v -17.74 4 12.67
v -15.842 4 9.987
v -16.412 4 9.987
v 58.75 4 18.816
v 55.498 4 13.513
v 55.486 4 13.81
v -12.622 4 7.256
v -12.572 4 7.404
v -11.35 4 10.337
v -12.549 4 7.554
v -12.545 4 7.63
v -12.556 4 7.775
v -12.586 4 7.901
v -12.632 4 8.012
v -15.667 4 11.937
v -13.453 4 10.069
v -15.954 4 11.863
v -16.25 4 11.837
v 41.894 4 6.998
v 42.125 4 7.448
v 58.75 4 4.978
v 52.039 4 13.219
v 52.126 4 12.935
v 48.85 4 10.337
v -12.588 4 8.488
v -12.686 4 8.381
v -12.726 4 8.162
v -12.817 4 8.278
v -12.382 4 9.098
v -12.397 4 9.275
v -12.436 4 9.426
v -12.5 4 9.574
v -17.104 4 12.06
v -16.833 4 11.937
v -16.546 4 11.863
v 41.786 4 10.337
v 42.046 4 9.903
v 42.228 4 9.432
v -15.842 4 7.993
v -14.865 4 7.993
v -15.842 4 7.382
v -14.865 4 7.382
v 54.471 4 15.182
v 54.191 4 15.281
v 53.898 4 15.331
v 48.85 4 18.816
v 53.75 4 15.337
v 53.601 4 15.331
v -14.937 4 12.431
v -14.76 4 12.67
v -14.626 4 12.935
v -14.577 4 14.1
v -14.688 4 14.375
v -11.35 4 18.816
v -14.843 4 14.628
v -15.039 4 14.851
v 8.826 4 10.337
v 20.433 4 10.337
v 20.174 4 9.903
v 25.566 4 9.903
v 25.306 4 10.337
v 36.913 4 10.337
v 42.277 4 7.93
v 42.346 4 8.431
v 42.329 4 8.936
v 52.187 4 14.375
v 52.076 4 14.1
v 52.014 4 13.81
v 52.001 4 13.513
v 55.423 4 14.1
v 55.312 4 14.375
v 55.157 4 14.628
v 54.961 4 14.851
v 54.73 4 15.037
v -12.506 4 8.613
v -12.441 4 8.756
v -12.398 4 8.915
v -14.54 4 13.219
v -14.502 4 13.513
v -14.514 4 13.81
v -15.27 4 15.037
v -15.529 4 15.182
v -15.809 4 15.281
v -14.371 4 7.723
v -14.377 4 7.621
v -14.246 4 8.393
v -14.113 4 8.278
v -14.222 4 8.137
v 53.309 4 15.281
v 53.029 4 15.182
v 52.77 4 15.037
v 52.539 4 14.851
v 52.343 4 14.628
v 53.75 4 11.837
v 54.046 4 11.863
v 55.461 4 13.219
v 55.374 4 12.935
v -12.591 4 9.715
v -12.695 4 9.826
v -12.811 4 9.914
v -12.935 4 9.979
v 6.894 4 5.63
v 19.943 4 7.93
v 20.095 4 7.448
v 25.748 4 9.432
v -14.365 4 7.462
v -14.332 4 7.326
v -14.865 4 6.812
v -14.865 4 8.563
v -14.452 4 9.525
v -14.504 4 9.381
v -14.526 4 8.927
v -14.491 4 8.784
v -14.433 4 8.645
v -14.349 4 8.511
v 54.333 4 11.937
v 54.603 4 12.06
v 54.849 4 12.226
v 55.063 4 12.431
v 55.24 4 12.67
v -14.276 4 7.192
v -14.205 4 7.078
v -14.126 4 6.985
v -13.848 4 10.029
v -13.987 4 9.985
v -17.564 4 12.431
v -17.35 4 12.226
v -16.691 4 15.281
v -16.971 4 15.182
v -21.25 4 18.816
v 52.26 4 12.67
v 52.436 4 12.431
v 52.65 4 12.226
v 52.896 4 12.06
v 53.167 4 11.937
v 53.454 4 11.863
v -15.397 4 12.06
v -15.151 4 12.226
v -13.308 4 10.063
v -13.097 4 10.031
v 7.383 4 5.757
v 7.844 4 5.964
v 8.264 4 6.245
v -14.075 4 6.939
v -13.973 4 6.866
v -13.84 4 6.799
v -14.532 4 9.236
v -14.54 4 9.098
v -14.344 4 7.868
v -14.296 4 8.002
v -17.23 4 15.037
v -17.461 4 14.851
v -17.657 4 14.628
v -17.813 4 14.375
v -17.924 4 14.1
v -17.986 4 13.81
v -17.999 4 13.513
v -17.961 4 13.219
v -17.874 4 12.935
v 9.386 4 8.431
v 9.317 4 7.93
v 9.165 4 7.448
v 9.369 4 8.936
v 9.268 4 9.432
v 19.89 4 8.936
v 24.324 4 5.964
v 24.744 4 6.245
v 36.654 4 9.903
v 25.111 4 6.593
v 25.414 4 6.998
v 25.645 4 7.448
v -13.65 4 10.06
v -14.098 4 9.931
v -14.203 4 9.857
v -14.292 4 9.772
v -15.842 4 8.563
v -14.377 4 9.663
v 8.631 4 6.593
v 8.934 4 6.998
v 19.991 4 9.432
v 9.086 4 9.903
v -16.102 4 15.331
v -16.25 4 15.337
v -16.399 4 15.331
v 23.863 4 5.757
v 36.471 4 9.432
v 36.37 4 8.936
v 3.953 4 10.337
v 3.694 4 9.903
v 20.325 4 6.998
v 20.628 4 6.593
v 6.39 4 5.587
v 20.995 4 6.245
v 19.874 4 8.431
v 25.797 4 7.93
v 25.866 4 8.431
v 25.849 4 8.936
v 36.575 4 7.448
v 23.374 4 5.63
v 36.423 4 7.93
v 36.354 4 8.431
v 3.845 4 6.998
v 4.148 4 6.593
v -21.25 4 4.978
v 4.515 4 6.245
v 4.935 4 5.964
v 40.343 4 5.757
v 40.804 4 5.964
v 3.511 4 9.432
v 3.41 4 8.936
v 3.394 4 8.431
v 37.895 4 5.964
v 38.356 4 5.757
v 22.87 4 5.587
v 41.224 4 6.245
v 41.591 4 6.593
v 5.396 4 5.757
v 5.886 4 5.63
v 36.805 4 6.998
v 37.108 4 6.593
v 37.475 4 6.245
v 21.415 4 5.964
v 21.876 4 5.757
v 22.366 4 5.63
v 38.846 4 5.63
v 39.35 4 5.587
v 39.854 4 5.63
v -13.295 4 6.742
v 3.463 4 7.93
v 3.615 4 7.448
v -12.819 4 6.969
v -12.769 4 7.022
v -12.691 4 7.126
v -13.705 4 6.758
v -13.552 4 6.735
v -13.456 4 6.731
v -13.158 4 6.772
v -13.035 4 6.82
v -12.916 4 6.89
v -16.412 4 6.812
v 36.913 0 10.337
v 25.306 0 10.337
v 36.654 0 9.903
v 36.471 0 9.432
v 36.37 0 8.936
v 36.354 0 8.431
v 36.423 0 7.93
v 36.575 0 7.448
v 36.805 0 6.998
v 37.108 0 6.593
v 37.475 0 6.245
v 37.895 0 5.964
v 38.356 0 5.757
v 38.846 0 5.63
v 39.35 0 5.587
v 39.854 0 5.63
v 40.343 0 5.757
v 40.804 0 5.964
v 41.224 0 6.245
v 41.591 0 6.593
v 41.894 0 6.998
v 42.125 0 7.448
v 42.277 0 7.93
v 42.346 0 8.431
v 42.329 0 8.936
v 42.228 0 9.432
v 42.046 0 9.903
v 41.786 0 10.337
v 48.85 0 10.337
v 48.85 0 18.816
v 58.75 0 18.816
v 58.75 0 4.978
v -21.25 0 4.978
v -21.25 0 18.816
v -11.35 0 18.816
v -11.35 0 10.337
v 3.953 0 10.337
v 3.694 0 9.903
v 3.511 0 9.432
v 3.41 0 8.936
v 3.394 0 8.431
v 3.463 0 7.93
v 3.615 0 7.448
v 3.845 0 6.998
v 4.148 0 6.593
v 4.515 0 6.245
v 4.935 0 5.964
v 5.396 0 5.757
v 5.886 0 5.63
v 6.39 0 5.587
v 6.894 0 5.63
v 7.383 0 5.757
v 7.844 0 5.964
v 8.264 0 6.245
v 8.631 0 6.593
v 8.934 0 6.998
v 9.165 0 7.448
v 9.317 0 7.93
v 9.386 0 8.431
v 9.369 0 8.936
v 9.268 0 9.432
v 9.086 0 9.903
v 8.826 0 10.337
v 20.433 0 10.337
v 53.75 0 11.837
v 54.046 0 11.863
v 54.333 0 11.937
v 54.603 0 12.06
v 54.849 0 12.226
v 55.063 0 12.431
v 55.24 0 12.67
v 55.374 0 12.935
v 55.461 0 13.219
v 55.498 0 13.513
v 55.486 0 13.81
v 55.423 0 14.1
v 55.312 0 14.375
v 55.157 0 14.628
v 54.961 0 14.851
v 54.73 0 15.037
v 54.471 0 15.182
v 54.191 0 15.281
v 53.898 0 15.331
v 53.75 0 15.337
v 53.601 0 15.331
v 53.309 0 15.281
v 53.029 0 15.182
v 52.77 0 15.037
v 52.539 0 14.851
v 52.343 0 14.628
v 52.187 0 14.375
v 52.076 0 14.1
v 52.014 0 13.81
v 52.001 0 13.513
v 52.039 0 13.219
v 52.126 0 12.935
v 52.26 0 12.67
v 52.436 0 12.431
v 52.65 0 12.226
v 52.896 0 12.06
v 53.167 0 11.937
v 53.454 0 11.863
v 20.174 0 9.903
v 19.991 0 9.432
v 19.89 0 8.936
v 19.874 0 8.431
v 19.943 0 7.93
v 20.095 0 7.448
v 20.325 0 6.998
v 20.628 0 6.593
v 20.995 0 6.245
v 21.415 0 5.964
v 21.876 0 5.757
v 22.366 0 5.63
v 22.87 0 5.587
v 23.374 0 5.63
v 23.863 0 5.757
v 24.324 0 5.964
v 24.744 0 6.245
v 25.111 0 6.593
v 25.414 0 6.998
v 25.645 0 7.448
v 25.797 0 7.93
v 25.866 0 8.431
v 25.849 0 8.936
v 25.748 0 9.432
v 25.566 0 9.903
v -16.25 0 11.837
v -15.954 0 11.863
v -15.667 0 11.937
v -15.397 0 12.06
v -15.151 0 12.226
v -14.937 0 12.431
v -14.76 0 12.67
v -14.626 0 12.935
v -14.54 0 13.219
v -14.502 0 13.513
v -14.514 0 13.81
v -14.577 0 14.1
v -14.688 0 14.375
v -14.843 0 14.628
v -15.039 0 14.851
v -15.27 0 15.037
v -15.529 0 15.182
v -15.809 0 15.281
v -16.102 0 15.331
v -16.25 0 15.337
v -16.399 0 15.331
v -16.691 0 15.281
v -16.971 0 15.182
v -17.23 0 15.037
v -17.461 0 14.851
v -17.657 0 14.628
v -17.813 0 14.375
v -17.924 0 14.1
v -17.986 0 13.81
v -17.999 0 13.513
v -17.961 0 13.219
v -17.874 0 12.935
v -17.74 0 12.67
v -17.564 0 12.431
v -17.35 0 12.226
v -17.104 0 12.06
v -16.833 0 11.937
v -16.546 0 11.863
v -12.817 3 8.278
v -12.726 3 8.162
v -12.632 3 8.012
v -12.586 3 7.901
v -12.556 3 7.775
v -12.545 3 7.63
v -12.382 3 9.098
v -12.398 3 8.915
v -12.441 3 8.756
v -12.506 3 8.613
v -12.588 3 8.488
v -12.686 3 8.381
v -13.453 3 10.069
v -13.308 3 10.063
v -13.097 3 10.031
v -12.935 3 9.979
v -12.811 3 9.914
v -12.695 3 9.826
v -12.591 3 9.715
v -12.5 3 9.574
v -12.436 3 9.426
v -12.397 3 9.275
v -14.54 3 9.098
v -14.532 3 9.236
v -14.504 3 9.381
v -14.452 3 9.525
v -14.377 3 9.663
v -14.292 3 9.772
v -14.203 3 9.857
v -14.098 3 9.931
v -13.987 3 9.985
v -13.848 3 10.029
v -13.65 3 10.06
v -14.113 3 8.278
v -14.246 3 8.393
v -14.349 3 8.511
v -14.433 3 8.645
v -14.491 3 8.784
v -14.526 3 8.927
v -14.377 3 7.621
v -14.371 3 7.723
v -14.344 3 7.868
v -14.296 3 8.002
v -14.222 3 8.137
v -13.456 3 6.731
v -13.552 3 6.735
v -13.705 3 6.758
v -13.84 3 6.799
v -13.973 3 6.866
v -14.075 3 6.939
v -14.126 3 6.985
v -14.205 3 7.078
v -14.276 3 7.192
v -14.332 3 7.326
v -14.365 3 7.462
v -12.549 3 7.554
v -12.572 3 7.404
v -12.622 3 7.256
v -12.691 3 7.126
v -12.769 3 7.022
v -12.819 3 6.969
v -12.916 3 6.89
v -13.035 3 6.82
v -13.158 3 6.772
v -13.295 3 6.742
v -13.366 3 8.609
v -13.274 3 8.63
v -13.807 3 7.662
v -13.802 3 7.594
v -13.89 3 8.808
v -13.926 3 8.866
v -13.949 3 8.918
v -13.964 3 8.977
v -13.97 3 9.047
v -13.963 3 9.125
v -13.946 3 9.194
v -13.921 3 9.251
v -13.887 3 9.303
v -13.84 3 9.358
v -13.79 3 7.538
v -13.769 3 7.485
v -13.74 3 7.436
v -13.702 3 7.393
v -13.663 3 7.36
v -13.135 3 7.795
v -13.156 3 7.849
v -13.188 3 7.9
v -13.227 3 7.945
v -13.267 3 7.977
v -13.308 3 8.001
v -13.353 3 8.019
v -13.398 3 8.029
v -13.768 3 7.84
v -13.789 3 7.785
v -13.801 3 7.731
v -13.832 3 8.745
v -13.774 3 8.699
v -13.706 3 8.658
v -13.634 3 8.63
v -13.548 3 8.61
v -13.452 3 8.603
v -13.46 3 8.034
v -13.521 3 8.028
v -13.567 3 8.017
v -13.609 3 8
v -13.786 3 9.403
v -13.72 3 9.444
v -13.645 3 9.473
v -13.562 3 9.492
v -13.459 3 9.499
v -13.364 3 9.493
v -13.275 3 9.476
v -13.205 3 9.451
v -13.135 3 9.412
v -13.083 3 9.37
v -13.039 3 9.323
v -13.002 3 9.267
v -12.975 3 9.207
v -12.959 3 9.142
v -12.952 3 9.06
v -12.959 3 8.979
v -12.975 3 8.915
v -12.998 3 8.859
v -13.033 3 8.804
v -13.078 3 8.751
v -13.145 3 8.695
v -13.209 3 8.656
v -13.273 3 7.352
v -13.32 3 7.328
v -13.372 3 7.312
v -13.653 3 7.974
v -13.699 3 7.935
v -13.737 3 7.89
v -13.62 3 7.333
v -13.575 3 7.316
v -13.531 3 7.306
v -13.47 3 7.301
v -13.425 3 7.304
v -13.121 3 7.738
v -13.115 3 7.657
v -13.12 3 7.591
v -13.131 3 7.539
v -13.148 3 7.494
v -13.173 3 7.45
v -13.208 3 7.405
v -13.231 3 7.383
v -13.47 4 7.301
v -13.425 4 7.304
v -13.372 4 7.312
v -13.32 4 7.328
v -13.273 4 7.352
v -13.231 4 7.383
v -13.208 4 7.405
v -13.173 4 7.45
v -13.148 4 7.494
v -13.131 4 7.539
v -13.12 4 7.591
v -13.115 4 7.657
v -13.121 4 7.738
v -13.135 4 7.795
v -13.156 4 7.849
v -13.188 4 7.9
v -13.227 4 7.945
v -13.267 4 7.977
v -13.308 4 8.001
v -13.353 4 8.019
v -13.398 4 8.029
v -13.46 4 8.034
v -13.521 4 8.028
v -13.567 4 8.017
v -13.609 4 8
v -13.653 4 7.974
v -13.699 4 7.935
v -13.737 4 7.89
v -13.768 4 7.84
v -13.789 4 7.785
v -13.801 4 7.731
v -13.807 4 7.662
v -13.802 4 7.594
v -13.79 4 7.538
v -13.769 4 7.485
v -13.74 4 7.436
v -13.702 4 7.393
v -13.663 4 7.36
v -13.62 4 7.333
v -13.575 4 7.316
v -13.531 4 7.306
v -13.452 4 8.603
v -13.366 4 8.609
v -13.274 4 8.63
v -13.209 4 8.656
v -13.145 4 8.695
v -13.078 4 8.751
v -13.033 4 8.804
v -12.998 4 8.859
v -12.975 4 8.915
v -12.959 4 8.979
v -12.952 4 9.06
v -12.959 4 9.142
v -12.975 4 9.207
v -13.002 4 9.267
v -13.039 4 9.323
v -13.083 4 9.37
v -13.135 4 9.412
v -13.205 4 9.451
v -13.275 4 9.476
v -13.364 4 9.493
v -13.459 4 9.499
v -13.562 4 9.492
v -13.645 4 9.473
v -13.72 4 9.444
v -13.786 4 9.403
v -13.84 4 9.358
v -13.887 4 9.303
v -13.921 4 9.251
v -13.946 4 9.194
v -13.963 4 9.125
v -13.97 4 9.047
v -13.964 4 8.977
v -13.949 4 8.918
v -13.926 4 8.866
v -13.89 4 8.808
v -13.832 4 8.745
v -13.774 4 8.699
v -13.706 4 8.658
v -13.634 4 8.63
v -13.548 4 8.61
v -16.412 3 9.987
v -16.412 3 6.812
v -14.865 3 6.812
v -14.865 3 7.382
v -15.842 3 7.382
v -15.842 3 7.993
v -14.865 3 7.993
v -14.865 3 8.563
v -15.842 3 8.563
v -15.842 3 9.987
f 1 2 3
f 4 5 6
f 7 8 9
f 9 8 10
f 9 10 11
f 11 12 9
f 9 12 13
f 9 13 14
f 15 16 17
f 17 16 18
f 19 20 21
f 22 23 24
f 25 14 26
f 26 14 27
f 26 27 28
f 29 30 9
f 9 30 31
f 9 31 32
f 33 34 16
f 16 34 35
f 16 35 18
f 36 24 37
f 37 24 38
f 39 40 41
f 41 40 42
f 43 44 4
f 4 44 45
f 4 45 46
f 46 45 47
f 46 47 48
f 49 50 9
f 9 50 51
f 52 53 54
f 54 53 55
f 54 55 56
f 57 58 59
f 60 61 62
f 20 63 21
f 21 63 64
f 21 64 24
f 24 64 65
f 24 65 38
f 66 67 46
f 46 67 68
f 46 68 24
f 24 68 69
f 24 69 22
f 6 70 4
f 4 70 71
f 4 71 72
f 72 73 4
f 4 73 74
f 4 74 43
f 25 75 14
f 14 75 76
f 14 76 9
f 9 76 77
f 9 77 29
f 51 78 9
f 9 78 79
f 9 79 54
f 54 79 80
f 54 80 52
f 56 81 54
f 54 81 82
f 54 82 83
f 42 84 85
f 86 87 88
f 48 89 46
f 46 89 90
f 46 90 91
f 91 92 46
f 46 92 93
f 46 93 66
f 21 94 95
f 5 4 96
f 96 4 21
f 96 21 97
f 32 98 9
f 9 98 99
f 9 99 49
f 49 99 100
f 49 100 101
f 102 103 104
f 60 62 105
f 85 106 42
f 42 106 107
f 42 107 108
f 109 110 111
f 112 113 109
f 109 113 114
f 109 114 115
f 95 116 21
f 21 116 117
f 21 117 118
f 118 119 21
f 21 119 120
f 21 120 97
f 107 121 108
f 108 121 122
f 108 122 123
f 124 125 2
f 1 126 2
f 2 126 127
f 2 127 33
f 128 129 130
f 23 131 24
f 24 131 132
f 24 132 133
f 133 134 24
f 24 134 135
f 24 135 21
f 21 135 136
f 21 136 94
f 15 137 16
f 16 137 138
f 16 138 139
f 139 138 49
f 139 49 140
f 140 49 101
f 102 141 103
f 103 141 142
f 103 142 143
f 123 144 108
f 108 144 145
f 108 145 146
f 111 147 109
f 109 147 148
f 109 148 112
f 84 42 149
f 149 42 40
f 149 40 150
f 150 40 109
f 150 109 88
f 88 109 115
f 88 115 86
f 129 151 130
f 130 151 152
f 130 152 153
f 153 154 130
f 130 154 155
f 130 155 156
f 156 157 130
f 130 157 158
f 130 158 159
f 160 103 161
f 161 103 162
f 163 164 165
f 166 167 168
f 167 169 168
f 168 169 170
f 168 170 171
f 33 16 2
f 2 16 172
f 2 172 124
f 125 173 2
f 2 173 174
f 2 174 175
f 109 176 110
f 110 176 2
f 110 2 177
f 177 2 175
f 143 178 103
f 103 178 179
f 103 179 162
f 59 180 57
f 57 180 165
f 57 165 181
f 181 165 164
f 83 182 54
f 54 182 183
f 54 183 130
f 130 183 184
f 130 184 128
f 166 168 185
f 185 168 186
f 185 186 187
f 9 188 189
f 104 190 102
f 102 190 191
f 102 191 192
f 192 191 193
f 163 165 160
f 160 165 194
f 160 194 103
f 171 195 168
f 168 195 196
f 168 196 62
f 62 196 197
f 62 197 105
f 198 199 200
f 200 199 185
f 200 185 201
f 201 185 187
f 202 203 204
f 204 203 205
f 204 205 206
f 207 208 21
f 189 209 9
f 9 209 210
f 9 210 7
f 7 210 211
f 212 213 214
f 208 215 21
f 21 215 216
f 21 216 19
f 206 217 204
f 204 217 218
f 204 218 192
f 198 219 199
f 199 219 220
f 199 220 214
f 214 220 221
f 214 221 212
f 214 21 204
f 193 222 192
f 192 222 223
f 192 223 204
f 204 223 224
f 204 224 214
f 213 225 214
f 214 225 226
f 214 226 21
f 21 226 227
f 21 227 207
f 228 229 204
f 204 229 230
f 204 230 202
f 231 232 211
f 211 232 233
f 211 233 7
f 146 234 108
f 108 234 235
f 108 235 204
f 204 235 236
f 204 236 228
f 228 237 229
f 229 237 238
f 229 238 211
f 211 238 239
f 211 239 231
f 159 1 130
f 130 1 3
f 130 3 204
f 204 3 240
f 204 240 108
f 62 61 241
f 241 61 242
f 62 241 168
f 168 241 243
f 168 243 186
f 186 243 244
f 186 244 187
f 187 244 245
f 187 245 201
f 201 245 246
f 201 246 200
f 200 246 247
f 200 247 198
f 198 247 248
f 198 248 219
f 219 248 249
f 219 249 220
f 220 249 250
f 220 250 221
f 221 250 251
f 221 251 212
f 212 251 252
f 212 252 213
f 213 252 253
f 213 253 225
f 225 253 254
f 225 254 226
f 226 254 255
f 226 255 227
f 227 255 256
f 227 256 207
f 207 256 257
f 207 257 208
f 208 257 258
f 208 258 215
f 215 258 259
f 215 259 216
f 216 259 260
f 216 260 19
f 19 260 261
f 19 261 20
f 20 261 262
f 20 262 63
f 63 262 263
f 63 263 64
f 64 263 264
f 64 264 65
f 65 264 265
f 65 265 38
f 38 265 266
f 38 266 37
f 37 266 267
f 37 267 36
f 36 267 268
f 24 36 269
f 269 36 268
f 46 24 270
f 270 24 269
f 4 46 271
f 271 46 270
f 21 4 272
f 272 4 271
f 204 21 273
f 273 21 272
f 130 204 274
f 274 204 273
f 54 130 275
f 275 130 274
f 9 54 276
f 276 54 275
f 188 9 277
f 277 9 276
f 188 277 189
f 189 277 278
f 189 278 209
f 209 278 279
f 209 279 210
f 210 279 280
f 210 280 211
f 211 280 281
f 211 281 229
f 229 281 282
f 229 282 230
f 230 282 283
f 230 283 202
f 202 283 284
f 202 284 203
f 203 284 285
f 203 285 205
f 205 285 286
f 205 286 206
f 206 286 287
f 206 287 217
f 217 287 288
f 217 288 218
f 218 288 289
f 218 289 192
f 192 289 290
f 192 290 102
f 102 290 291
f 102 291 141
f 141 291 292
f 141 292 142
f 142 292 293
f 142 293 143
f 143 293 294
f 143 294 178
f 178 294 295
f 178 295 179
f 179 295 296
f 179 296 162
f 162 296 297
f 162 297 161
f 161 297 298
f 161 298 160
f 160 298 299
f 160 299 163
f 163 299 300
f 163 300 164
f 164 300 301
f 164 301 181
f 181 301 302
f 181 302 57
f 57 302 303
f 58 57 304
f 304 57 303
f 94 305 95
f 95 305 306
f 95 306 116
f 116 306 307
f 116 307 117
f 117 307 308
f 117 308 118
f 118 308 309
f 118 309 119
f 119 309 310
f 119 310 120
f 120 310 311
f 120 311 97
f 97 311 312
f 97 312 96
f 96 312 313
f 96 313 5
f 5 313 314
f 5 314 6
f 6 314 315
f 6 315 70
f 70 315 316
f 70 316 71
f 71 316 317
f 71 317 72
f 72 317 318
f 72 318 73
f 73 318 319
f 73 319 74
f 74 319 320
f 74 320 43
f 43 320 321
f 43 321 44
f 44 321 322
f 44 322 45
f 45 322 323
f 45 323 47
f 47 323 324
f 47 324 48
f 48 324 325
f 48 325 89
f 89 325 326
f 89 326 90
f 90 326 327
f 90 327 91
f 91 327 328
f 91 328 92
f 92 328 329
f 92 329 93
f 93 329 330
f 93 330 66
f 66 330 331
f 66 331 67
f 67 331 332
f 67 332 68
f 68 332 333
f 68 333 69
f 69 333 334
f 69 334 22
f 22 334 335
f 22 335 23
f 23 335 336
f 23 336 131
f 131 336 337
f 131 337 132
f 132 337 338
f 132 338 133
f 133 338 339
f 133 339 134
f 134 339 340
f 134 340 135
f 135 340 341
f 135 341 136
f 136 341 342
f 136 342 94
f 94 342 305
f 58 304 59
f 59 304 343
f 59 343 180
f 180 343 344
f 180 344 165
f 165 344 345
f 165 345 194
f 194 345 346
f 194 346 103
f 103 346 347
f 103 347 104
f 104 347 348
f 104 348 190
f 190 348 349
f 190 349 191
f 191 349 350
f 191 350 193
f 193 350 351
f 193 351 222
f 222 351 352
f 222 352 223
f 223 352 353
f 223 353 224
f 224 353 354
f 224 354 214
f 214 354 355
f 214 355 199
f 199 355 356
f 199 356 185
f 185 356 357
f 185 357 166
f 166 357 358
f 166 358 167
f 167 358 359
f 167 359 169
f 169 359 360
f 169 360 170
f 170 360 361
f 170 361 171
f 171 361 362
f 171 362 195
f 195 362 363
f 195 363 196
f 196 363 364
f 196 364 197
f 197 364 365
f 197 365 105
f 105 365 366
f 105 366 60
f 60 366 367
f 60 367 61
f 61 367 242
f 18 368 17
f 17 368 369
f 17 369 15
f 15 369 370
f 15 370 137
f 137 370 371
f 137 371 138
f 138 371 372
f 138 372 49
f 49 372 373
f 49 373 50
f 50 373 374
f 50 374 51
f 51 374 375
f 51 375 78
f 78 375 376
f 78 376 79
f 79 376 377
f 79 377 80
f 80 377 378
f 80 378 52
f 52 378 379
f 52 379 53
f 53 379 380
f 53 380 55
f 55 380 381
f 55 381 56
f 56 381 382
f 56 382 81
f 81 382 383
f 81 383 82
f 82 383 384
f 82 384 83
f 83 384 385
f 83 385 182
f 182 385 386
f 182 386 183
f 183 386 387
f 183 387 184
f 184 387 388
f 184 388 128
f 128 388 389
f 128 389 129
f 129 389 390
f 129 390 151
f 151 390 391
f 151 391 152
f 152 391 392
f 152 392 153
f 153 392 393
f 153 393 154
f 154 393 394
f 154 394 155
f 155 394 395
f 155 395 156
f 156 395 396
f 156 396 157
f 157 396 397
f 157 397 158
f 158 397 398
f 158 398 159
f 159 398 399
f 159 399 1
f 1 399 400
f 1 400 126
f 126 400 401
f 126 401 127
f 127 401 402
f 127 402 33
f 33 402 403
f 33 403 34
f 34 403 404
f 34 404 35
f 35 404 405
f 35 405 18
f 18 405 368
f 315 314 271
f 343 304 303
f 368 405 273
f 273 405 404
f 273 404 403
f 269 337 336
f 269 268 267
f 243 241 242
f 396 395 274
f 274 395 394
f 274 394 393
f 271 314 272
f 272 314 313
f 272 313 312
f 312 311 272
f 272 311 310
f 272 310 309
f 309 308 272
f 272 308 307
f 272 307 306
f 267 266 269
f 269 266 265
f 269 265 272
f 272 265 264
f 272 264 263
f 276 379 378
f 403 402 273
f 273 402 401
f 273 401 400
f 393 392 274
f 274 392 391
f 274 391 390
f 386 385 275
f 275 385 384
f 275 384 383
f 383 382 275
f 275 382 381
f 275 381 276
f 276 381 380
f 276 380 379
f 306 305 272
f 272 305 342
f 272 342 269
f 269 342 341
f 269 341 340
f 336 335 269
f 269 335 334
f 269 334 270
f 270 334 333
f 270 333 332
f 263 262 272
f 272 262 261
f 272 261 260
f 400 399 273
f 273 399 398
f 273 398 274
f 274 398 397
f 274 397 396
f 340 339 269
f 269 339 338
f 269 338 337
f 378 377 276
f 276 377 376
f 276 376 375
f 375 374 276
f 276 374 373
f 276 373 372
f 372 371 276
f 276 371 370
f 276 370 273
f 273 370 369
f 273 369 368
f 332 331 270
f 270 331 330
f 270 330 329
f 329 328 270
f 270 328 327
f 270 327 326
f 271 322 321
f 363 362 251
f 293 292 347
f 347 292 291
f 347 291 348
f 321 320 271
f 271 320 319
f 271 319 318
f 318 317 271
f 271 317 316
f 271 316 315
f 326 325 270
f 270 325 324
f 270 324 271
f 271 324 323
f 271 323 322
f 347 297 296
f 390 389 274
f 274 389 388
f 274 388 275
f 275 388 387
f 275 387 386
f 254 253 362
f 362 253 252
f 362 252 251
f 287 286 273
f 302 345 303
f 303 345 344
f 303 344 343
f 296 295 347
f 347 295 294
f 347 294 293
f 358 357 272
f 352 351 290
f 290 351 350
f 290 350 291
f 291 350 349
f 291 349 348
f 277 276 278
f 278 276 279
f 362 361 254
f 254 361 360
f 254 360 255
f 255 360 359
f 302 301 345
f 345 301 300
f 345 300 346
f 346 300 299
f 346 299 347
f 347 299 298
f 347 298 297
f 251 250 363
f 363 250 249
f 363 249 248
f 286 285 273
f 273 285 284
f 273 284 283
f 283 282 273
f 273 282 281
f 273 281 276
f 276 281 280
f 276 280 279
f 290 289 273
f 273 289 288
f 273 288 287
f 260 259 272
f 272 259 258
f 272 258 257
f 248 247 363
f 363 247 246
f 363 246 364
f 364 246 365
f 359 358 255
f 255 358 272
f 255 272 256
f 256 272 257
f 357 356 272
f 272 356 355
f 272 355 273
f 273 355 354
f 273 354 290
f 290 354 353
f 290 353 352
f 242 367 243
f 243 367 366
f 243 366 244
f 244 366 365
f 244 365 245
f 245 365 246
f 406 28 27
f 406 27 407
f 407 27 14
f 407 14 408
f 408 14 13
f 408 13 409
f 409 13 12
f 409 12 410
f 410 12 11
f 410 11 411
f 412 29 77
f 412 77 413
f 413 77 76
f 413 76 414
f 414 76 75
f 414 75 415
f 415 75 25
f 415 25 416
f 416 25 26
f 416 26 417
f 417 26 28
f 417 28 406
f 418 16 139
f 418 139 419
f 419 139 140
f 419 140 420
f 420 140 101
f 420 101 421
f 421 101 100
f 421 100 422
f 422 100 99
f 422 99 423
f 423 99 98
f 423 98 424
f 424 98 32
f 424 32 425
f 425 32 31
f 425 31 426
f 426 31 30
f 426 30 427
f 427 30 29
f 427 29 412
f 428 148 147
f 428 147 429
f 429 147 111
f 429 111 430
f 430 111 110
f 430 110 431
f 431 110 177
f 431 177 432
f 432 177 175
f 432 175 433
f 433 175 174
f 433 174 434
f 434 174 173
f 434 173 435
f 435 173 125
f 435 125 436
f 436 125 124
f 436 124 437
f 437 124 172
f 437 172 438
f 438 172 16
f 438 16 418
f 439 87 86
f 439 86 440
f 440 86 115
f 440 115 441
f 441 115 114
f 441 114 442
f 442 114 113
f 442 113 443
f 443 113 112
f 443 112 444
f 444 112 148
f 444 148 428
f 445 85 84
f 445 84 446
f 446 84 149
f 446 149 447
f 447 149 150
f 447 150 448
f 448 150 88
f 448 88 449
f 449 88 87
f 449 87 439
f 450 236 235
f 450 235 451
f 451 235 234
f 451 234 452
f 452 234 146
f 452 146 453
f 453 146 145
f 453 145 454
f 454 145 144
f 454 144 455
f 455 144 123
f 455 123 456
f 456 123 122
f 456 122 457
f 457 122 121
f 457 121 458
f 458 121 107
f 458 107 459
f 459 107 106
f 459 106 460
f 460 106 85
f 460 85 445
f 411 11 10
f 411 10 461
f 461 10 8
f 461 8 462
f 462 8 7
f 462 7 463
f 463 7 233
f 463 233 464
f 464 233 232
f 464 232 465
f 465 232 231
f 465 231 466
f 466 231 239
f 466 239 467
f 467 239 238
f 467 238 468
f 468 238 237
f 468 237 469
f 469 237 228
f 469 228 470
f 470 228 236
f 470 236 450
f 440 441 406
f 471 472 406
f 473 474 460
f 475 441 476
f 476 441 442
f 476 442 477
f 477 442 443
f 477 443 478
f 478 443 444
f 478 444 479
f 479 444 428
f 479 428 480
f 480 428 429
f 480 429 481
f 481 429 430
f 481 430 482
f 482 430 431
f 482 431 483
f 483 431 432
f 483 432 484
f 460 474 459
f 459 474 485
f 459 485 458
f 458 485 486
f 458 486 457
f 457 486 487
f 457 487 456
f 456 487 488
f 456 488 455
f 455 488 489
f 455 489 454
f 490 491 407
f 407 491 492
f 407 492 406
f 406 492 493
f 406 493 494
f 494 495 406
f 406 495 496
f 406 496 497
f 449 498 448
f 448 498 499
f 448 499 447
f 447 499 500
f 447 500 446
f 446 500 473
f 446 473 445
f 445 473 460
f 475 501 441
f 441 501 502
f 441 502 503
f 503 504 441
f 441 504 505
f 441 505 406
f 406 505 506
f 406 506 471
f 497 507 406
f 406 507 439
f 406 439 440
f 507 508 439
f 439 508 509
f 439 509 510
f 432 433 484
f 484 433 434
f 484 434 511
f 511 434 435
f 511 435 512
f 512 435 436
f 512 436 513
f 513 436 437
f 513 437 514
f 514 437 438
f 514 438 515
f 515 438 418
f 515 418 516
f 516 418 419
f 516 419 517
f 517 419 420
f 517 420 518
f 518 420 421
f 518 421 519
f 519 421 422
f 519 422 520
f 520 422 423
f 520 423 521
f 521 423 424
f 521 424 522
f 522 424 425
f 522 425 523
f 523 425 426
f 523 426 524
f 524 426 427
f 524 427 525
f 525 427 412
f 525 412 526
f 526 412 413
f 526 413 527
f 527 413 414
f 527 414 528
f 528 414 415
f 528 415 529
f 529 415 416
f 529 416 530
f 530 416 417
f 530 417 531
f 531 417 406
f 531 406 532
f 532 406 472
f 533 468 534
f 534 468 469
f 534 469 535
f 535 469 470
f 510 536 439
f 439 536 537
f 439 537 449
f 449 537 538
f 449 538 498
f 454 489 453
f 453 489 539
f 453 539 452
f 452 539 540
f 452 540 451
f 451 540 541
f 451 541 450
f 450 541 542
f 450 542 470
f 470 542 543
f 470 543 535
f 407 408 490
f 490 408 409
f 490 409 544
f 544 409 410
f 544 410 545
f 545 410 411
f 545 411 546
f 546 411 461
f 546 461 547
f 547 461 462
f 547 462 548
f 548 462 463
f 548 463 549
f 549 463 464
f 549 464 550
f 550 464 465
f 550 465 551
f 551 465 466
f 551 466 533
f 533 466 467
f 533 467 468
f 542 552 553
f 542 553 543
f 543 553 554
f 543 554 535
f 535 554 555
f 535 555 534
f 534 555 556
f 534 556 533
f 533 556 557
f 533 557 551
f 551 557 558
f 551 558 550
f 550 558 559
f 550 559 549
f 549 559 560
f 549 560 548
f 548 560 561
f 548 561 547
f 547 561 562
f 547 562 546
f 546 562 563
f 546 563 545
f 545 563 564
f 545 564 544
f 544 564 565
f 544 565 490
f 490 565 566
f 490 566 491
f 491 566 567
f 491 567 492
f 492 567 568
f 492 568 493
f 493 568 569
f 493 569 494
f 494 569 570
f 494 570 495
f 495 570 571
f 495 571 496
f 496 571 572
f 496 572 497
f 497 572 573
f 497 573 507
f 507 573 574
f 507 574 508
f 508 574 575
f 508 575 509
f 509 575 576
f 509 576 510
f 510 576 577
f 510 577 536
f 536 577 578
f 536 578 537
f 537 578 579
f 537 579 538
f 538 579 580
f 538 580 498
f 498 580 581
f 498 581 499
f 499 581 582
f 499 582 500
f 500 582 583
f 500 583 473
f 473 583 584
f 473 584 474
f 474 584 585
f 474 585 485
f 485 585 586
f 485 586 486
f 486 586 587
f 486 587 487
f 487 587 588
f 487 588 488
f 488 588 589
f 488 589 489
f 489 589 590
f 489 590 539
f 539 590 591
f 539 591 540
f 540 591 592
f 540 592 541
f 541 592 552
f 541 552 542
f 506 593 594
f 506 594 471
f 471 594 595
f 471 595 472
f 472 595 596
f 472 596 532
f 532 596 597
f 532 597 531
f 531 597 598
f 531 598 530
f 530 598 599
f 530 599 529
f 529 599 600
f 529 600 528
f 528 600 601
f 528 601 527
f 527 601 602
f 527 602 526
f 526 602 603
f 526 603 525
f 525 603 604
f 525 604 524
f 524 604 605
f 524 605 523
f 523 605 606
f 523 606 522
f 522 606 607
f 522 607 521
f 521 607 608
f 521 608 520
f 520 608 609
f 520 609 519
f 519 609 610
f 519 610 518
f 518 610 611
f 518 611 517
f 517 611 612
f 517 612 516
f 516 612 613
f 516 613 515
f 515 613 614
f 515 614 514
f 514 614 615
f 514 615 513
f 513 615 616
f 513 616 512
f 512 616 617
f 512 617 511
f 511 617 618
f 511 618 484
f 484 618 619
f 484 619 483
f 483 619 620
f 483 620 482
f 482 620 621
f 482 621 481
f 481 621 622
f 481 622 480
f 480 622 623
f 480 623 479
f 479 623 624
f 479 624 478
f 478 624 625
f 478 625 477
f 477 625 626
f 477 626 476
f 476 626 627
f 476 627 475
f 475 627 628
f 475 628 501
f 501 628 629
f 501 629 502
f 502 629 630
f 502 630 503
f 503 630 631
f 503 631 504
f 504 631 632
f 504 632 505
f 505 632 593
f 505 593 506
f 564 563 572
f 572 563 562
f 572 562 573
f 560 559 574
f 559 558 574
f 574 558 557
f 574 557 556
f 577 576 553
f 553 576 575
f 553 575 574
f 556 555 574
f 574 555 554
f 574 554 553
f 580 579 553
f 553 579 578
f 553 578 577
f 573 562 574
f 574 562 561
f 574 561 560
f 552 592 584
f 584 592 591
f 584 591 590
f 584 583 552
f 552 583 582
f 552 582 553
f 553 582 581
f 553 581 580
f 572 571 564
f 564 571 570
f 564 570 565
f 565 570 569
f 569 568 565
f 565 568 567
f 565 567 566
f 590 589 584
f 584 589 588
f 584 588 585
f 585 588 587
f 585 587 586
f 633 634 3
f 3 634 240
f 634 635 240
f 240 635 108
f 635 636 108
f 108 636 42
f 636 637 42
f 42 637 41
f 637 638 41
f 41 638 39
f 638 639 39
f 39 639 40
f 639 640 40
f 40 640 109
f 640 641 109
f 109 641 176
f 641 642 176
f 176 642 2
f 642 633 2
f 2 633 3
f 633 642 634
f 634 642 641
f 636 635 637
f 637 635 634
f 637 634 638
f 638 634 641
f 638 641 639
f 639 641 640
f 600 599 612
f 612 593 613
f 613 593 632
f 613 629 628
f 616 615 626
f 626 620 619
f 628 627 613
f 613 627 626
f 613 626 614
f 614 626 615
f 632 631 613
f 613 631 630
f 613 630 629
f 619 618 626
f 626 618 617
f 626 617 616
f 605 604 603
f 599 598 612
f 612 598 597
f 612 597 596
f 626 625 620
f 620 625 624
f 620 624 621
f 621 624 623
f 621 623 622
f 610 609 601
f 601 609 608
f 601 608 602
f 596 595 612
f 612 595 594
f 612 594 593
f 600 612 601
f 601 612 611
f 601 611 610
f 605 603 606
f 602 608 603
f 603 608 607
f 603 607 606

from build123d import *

# Parameters (mm, degrees)
BOSS_EXTRUDE1_OUTLINE_R = 1.75
BOSS_EXTRUDE1_DEPTH     = 4
CUT_EXTRUDE1_DEPTH      = 1


# Read off the part's stored shape, not the designer's step: Boss-Extrude1
with BuildPart() as part:
    # Boss-Extrude1 outline → Boss-Extrude1 (new body)
    with BuildSketch(Plane(origin=(0, 0, 0), x_dir=(1, 0, 0), z_dir=(0, 1, 0))):
        with BuildLine():
            Line((25.306474615, -10.33744254), (36.91307775, -10.33744254))
            ThreePointArc((36.91307775, -10.33744254), (39.349776183, -5.587442326), (41.786474615, -10.33744254))
            Line((41.786474615, -10.33744254), (48.849776182, -10.33744254))
            Line((48.849776182, -10.33744254), (48.849776182, -18.81631662))
            Line((48.849776182, -18.81631662), (58.749776182, -18.81631662))
            Line((58.749776182, -18.81631662), (58.749776182, -4.977921711))
            Line((58.749776182, -4.977921711), (-21.250223818, -4.977921711))
            Line((-21.250223818, -4.977921711), (-21.250223818, -18.81631662))
            Line((-21.250223818, -18.81631662), (-11.350223818, -18.81631662))
            Line((-11.350223818, -18.81631662), (-11.350223818, -10.33744254))
            Line((-11.350223818, -10.33744254), (3.95307775, -10.33744254))
            ThreePointArc((3.95307775, -10.33744254), (6.389776182, -5.587442326), (8.826474615, -10.33744254))
            Line((8.826474615, -10.33744254), (20.43307775, -10.33744254))
            ThreePointArc((20.43307775, -10.33744254), (22.869776182, -5.587442326), (25.306474615, -10.33744254))
        make_face()
        with Locations((-16.250223818, -13.587442433)):
            Circle(BOSS_EXTRUDE1_OUTLINE_R, mode=Mode.SUBTRACT)
        with Locations((53.749776182, -13.587442433)):
            Circle(BOSS_EXTRUDE1_OUTLINE_R, mode=Mode.SUBTRACT)
    extrude(amount=BOSS_EXTRUDE1_DEPTH)

    # Sketch2 → Cut-Extrude1 (cut)
    # profile 1 of 2: a face of its own
    with BuildSketch(Plane(origin=(0, 4, 0), x_dir=(1, 0, 0), z_dir=(0, 1, 0))):
        Polygon((-16.41198232, -6.812466594), (-14.865187448, -6.812466594), (-14.865187448, -7.382338389), (-15.842110525, -7.382338389), (-15.842110525, -7.992915312), (-14.865187448, -7.992915312), (-14.865187448, -8.562787107), (-15.842110525, -8.562787107), (-15.842110525, -9.987466594), (-16.41198232, -9.987466594), align=None)
    # profile 2 of 2: a face of its own
    with BuildSketch(Plane(origin=(0, 4, 0), x_dir=(1, 0, 0), z_dir=(0, 1, 0))):
        with BuildLine():
            add(Edge.make_bspline(
                [(-12.817210686, -8.277851209), (-12.783916812, -8.301640582), (-12.718014592, -8.348729498), (-12.630981866, -8.433091053), (-12.556016347, -8.527197346), (-12.493905254, -8.630471147), (-12.44414372, -8.740373961), (-12.408522012, -8.855731057), (-12.385895512, -8.975524957), (-12.383424023, -9.057083985), (-12.382174628, -9.09831395)],
                knots=[0, 0, 0, 0, 1.013736912, 2.006600758, 2.994453809, 3.989973287, 4.987781207, 5.978959008, 6.978317308, 8, 8, 8, 8], degree=3))
            add(Edge.make_bspline(
                [(-12.382174628, -9.09831395), (-12.383681928, -9.142958744), (-12.386671463, -9.231505963), (-12.413102949, -9.361360446), (-12.455537639, -9.486113154), (-12.513532925, -9.604387133), (-12.586248347, -9.71250688), (-12.671004934, -9.808223668), (-12.767909528, -9.889037688), (-12.858130451, -9.94386948), (-12.93578675, -9.980293202), (-12.998454703, -10.003603653), (-13.064627941, -10.024125244), (-13.134778669, -10.040520633), (-13.208894129, -10.053319925), (-13.28686855, -10.061772553), (-13.368753261, -10.067917099), (-13.424595172, -10.068551539), (-13.453228314, -10.06887685)],
                knots=[0, 0, 0, 0, 1.313679292, 2.605514271, 3.884962679, 5.186178731, 6.472827995, 7.711026938, 8.938935107, 10.174644318, 10.808706728, 11.462743532, 12.142127587, 12.847854939, 13.582806024, 14.355735269, 15.156897313, 16, 16, 16, 16], degree=3))
            add(Edge.make_bspline(
                [(-13.453228314, -10.06887685), (-13.483762719, -10.068462664), (-13.543390392, -10.067653841), (-13.630433512, -10.062763265), (-13.712540889, -10.05374694), (-13.789884756, -10.041877645), (-13.862390702, -10.026171129), (-13.930060872, -10.006256127), (-13.993058665, -9.983580681), (-14.070171273, -9.949055369), (-14.158297, -9.895136701), (-14.253544974, -9.816174366), (-14.337148326, -9.722127758), (-14.409833523, -9.615636751), (-14.467126735, -9.497356478), (-14.509731675, -9.370999371), (-14.534962825, -9.236907843), (-14.538000373, -9.145061739), (-14.539546423, -9.09831395)],
                knots=[0, 0, 0, 0, 0.886964665, 1.7320671, 2.531131818, 3.285397207, 4.004107883, 4.684213108, 5.332925796, 5.947568694, 7.135706876, 8.320776993, 9.52873045, 10.778999824, 12.05415135, 13.333578234, 14.642845846, 16, 16, 16, 16], degree=3))
            add(Edge.make_bspline(
                [(-14.539546423, -9.09831395), (-14.538133592, -9.057534194), (-14.535357209, -8.977397037), (-14.515469601, -8.859970757), (-14.481368397, -8.74863675), (-14.434576238, -8.642619953), (-14.374238543, -8.54190857), (-14.29999851, -8.447243639), (-14.212797428, -8.357771149), (-14.146671217, -8.304933073), (-14.112778594, -8.277851209)],
                knots=[0, 0, 0, 0, 1.01821053, 2.000906977, 2.963938143, 3.919209931, 4.888045165, 5.887808425, 6.917407893, 8, 8, 8, 8], degree=3))
            add(Edge.make_bspline(
                [(-14.112778594, -8.277851209), (-14.133790223, -8.25361737), (-14.175155792, -8.205908238), (-14.228683245, -8.129124193), (-14.27377787, -8.049959762), (-14.312065354, -7.969057406), (-14.340368438, -7.885024188), (-14.361772094, -7.799181284), (-14.373877981, -7.710654149), (-14.375770168, -7.650984229), (-14.37672591, -7.620844999)],
                knots=[0, 0, 0, 0, 1.061529281, 2.089831458, 3.092927091, 4.075998741, 5.048384512, 6.024008542, 7.00192825, 8, 8, 8, 8], degree=3))
            add(Edge.make_bspline(
                [(-14.37672591, -7.620844999), (-14.375458741, -7.580045367), (-14.372958667, -7.499549264), (-14.35081565, -7.381844957), (-14.314052865, -7.270002405), (-14.264040225, -7.164349068), (-14.200531945, -7.067187545), (-14.125070359, -6.98005538), (-14.036594626, -6.906144188), (-13.93839492, -6.842725124), (-13.829979018, -6.792282188), (-13.71237556, -6.756985999), (-13.587004623, -6.734641651), (-13.500602716, -6.732269623), (-13.456408402, -6.731056337)],
                knots=[0, 0, 0, 0, 1.022455555, 2.017265428, 2.990720743, 3.968117071, 4.939886797, 5.893155559, 6.847550415, 7.820889576, 8.817530429, 9.83499769, 10.892607882, 12, 12, 12, 12], degree=3))
            add(Edge.make_bspline(
                [(-13.456408402, -6.731056337), (-13.412850602, -6.732271608), (-13.327922012, -6.734641132), (-13.204754302, -6.756837427), (-13.089692277, -6.792919844), (-12.983687415, -6.844427856), (-12.886503285, -6.907969153), (-12.799531264, -6.984453863), (-12.724306479, -7.073756197), (-12.66027104, -7.173431259), (-12.609244635, -7.280816697), (-12.571520994, -7.393432622), (-12.549701195, -7.510393862), (-12.546570098, -7.589805025), (-12.544995141, -7.629749246)],
                knots=[0, 0, 0, 0, 1.094655142, 2.134348324, 3.136019022, 4.118575226, 5.088726318, 6.048298823, 7.020513804, 8.015920439, 9.020015034, 10.003048569, 10.995523219, 12, 12, 12, 12], degree=3))
            add(Edge.make_bspline(
                [(-12.544995141, -7.629749246), (-12.545753836, -7.657979661), (-12.547242718, -7.713379741), (-12.558251211, -7.794999693), (-12.576788162, -7.873314147), (-12.60263287, -7.950215641), (-12.638565836, -8.027794016), (-12.687191493, -8.107535817), (-12.746338221, -8.19275433), (-12.792789101, -8.248528105), (-12.817210686, -8.277851209)],
                knots=[0, 0, 0, 0, 0.940746401, 1.846144481, 2.739104268, 3.619506754, 4.545839139, 5.581956076, 6.728711598, 8, 8, 8, 8], degree=3))
        make_face()
        with BuildLine():
            add(Edge.make_bspline(
                [(-13.47040079, -7.300928132), (-13.493863602, -7.302059257), (-13.539503955, -7.304259544), (-13.604627394, -7.324119575), (-13.66317549, -7.356602067), (-13.713811769, -7.401304369), (-13.755336157, -7.455543915), (-13.7858543, -7.517903357), (-13.80395192, -7.58761311), (-13.805867905, -7.6364252), (-13.806854115, -7.661550128)],
                knots=[0, 0, 0, 0, 1.018099191, 1.980427864, 2.929421084, 3.909248076, 4.895556904, 5.880788387, 6.909183412, 8, 8, 8, 8], degree=3))
            add(Edge.make_bspline(
                [(-13.806854115, -7.661550128), (-13.805635844, -7.686889627), (-13.803257052, -7.736367441), (-13.784550526, -7.807416545), (-13.752664735, -7.871807238), (-13.70888576, -7.92819461), (-13.655687215, -7.974250185), (-13.596121153, -8.00942487), (-13.529526976, -8.029505185), (-13.483250413, -8.032228147), (-13.45958849, -8.03362044)],
                knots=[0, 0, 0, 0, 1.07118507, 2.091592095, 3.082435519, 4.092579768, 5.090825648, 6.043203473, 6.999459622, 8, 8, 8, 8], degree=3))
            add(Edge.make_bspline(
                [(-13.45958849, -8.03362044), (-13.435479226, -8.032541652), (-13.388509856, -8.03043997), (-13.321749401, -8.009838627), (-13.261606764, -7.976890976), (-13.21010348, -7.930310288), (-13.16744294, -7.873902495), (-13.136374254, -7.808386518), (-13.118492241, -7.734993318), (-13.116104929, -7.683698208), (-13.114866936, -7.657098004)],
                knots=[0, 0, 0, 0, 1.008803858, 1.965339183, 2.900766489, 3.864508618, 4.855158575, 5.849593072, 6.884859315, 8, 8, 8, 8], degree=3))
            add(Edge.make_bspline(
                [(-13.114866936, -7.657098004), (-13.116136245, -7.631989686), (-13.118591044, -7.583431082), (-13.136192895, -7.513716807), (-13.168519575, -7.452330647), (-13.210992661, -7.398427917), (-13.264242529, -7.354958718), (-13.326061725, -7.322991206), (-13.395995039, -7.304449741), (-13.445061785, -7.302127422), (-13.47040079, -7.300928132)],
                knots=[0, 0, 0, 0, 1.065910571, 2.061433587, 3.023559535, 3.990682701, 4.956464619, 5.918590567, 6.925120432, 8, 8, 8, 8], degree=3))
        make_face(mode=Mode.SUBTRACT)
        with BuildLine():
            add(Edge.make_bspline(
                [(-13.451956279, -8.603492235), (-13.46978624, -8.603788328), (-13.50492887, -8.604371924), (-13.556591424, -8.611101658), (-13.606166954, -8.621130626), (-13.653593954, -8.634965304), (-13.698632825, -8.653825453), (-13.741665347, -8.67656171), (-13.782542906, -8.703403911), (-13.820659173, -8.733864736), (-13.855107371, -8.767298393), (-13.886159288, -8.802168614), (-13.911539847, -8.839376887), (-13.9326758, -8.8776864), (-13.949658659, -8.917400732), (-13.960885612, -8.959173898), (-13.968114198, -9.002449596), (-13.969151425, -9.031927247), (-13.969674628, -9.046796522)],
                knots=[0, 0, 0, 0, 1.129580664, 2.226389355, 3.296443603, 4.333934503, 5.352185725, 6.386189251, 7.41493955, 8.447544828, 9.47401038, 10.455044306, 11.4018853, 12.322125673, 13.225630306, 14.132028716, 15.057747923, 16, 16, 16, 16], degree=3))
            add(Edge.make_bspline(
                [(-13.969674628, -9.046796522), (-13.96942526, -9.062303707), (-13.968930669, -9.09306029), (-13.961460572, -9.137952007), (-13.950704952, -9.181246985), (-13.93559834, -9.222539958), (-13.915396116, -9.261806883), (-13.891274294, -9.299429521), (-13.862391756, -9.335144056), (-13.829531642, -9.368758999), (-13.79274489, -9.399085677), (-13.753096834, -9.425804009), (-13.711111133, -9.449360258), (-13.665527406, -9.466326402), (-13.618033802, -9.481855308), (-13.56735795, -9.491276321), (-13.514053346, -9.498208564), (-13.47763421, -9.498735008), (-13.458952473, -9.499005055)],
                knots=[0, 0, 0, 0, 0.973817353, 1.931446211, 2.852767904, 3.776304432, 4.688323523, 5.623710549, 6.581246645, 7.570897993, 8.57436511, 9.572506873, 10.574556662, 11.591826551, 12.624694332, 13.712108235, 14.826391851, 16, 16, 16, 16], degree=3))
            add(Edge.make_bspline(
                [(-13.458952473, -9.499005055), (-13.440068015, -9.498662752), (-13.403268187, -9.497995712), (-13.349474239, -9.492100337), (-13.298594712, -9.482746092), (-13.250690378, -9.469367342), (-13.205580086, -9.452228631), (-13.163868953, -9.430414443), (-13.124604643, -9.405692898), (-13.089048919, -9.37681074), (-13.056583922, -9.345335216), (-13.02861077, -9.310840719), (-13.004825508, -9.274436466), (-12.985640103, -9.235729111), (-12.970159203, -9.194901366), (-12.959540278, -9.151546137), (-12.952950853, -9.106150636), (-12.952351136, -9.075228349), (-12.952046423, -9.059516874)],
                knots=[0, 0, 0, 0, 1.200705402, 2.339794563, 3.437264955, 4.487414319, 5.499029866, 6.500076882, 7.476298407, 8.444948224, 9.407950986, 10.347155707, 11.263432813, 12.167927724, 13.089546445, 14.03463663, 15.00140776, 16, 16, 16, 16], degree=3))
            add(Edge.make_bspline(
                [(-12.952046423, -9.059516874), (-12.952628246, -9.043599995), (-12.953765508, -9.012488012), (-12.959988437, -8.966543851), (-12.971662018, -8.922988069), (-12.986934472, -8.880810497), (-13.007250343, -8.840883929), (-13.032472057, -8.80329263), (-13.061180558, -8.767105421), (-13.094734453, -8.733933223), (-13.131420419, -8.703602043), (-13.170466782, -8.676580291), (-13.211753276, -8.65369536), (-13.255392832, -8.634988065), (-13.301544899, -8.621123427), (-13.349857336, -8.61110201), (-13.40025089, -8.604370418), (-13.434549713, -8.603787874), (-13.451956279, -8.603492235)],
                knots=[0, 0, 0, 0, 1.011708178, 1.977538892, 2.938094892, 3.871441737, 4.823268678, 5.775953079, 6.743660653, 7.753304209, 8.767430709, 9.76505158, 10.765940967, 11.761741361, 12.775867861, 13.822051386, 14.89469657, 16, 16, 16, 16], degree=3))
        make_face(mode=Mode.SUBTRACT)
    extrude(amount=-CUT_EXTRUDE1_DEPTH, mode=Mode.SUBTRACT)


solid = part.part
